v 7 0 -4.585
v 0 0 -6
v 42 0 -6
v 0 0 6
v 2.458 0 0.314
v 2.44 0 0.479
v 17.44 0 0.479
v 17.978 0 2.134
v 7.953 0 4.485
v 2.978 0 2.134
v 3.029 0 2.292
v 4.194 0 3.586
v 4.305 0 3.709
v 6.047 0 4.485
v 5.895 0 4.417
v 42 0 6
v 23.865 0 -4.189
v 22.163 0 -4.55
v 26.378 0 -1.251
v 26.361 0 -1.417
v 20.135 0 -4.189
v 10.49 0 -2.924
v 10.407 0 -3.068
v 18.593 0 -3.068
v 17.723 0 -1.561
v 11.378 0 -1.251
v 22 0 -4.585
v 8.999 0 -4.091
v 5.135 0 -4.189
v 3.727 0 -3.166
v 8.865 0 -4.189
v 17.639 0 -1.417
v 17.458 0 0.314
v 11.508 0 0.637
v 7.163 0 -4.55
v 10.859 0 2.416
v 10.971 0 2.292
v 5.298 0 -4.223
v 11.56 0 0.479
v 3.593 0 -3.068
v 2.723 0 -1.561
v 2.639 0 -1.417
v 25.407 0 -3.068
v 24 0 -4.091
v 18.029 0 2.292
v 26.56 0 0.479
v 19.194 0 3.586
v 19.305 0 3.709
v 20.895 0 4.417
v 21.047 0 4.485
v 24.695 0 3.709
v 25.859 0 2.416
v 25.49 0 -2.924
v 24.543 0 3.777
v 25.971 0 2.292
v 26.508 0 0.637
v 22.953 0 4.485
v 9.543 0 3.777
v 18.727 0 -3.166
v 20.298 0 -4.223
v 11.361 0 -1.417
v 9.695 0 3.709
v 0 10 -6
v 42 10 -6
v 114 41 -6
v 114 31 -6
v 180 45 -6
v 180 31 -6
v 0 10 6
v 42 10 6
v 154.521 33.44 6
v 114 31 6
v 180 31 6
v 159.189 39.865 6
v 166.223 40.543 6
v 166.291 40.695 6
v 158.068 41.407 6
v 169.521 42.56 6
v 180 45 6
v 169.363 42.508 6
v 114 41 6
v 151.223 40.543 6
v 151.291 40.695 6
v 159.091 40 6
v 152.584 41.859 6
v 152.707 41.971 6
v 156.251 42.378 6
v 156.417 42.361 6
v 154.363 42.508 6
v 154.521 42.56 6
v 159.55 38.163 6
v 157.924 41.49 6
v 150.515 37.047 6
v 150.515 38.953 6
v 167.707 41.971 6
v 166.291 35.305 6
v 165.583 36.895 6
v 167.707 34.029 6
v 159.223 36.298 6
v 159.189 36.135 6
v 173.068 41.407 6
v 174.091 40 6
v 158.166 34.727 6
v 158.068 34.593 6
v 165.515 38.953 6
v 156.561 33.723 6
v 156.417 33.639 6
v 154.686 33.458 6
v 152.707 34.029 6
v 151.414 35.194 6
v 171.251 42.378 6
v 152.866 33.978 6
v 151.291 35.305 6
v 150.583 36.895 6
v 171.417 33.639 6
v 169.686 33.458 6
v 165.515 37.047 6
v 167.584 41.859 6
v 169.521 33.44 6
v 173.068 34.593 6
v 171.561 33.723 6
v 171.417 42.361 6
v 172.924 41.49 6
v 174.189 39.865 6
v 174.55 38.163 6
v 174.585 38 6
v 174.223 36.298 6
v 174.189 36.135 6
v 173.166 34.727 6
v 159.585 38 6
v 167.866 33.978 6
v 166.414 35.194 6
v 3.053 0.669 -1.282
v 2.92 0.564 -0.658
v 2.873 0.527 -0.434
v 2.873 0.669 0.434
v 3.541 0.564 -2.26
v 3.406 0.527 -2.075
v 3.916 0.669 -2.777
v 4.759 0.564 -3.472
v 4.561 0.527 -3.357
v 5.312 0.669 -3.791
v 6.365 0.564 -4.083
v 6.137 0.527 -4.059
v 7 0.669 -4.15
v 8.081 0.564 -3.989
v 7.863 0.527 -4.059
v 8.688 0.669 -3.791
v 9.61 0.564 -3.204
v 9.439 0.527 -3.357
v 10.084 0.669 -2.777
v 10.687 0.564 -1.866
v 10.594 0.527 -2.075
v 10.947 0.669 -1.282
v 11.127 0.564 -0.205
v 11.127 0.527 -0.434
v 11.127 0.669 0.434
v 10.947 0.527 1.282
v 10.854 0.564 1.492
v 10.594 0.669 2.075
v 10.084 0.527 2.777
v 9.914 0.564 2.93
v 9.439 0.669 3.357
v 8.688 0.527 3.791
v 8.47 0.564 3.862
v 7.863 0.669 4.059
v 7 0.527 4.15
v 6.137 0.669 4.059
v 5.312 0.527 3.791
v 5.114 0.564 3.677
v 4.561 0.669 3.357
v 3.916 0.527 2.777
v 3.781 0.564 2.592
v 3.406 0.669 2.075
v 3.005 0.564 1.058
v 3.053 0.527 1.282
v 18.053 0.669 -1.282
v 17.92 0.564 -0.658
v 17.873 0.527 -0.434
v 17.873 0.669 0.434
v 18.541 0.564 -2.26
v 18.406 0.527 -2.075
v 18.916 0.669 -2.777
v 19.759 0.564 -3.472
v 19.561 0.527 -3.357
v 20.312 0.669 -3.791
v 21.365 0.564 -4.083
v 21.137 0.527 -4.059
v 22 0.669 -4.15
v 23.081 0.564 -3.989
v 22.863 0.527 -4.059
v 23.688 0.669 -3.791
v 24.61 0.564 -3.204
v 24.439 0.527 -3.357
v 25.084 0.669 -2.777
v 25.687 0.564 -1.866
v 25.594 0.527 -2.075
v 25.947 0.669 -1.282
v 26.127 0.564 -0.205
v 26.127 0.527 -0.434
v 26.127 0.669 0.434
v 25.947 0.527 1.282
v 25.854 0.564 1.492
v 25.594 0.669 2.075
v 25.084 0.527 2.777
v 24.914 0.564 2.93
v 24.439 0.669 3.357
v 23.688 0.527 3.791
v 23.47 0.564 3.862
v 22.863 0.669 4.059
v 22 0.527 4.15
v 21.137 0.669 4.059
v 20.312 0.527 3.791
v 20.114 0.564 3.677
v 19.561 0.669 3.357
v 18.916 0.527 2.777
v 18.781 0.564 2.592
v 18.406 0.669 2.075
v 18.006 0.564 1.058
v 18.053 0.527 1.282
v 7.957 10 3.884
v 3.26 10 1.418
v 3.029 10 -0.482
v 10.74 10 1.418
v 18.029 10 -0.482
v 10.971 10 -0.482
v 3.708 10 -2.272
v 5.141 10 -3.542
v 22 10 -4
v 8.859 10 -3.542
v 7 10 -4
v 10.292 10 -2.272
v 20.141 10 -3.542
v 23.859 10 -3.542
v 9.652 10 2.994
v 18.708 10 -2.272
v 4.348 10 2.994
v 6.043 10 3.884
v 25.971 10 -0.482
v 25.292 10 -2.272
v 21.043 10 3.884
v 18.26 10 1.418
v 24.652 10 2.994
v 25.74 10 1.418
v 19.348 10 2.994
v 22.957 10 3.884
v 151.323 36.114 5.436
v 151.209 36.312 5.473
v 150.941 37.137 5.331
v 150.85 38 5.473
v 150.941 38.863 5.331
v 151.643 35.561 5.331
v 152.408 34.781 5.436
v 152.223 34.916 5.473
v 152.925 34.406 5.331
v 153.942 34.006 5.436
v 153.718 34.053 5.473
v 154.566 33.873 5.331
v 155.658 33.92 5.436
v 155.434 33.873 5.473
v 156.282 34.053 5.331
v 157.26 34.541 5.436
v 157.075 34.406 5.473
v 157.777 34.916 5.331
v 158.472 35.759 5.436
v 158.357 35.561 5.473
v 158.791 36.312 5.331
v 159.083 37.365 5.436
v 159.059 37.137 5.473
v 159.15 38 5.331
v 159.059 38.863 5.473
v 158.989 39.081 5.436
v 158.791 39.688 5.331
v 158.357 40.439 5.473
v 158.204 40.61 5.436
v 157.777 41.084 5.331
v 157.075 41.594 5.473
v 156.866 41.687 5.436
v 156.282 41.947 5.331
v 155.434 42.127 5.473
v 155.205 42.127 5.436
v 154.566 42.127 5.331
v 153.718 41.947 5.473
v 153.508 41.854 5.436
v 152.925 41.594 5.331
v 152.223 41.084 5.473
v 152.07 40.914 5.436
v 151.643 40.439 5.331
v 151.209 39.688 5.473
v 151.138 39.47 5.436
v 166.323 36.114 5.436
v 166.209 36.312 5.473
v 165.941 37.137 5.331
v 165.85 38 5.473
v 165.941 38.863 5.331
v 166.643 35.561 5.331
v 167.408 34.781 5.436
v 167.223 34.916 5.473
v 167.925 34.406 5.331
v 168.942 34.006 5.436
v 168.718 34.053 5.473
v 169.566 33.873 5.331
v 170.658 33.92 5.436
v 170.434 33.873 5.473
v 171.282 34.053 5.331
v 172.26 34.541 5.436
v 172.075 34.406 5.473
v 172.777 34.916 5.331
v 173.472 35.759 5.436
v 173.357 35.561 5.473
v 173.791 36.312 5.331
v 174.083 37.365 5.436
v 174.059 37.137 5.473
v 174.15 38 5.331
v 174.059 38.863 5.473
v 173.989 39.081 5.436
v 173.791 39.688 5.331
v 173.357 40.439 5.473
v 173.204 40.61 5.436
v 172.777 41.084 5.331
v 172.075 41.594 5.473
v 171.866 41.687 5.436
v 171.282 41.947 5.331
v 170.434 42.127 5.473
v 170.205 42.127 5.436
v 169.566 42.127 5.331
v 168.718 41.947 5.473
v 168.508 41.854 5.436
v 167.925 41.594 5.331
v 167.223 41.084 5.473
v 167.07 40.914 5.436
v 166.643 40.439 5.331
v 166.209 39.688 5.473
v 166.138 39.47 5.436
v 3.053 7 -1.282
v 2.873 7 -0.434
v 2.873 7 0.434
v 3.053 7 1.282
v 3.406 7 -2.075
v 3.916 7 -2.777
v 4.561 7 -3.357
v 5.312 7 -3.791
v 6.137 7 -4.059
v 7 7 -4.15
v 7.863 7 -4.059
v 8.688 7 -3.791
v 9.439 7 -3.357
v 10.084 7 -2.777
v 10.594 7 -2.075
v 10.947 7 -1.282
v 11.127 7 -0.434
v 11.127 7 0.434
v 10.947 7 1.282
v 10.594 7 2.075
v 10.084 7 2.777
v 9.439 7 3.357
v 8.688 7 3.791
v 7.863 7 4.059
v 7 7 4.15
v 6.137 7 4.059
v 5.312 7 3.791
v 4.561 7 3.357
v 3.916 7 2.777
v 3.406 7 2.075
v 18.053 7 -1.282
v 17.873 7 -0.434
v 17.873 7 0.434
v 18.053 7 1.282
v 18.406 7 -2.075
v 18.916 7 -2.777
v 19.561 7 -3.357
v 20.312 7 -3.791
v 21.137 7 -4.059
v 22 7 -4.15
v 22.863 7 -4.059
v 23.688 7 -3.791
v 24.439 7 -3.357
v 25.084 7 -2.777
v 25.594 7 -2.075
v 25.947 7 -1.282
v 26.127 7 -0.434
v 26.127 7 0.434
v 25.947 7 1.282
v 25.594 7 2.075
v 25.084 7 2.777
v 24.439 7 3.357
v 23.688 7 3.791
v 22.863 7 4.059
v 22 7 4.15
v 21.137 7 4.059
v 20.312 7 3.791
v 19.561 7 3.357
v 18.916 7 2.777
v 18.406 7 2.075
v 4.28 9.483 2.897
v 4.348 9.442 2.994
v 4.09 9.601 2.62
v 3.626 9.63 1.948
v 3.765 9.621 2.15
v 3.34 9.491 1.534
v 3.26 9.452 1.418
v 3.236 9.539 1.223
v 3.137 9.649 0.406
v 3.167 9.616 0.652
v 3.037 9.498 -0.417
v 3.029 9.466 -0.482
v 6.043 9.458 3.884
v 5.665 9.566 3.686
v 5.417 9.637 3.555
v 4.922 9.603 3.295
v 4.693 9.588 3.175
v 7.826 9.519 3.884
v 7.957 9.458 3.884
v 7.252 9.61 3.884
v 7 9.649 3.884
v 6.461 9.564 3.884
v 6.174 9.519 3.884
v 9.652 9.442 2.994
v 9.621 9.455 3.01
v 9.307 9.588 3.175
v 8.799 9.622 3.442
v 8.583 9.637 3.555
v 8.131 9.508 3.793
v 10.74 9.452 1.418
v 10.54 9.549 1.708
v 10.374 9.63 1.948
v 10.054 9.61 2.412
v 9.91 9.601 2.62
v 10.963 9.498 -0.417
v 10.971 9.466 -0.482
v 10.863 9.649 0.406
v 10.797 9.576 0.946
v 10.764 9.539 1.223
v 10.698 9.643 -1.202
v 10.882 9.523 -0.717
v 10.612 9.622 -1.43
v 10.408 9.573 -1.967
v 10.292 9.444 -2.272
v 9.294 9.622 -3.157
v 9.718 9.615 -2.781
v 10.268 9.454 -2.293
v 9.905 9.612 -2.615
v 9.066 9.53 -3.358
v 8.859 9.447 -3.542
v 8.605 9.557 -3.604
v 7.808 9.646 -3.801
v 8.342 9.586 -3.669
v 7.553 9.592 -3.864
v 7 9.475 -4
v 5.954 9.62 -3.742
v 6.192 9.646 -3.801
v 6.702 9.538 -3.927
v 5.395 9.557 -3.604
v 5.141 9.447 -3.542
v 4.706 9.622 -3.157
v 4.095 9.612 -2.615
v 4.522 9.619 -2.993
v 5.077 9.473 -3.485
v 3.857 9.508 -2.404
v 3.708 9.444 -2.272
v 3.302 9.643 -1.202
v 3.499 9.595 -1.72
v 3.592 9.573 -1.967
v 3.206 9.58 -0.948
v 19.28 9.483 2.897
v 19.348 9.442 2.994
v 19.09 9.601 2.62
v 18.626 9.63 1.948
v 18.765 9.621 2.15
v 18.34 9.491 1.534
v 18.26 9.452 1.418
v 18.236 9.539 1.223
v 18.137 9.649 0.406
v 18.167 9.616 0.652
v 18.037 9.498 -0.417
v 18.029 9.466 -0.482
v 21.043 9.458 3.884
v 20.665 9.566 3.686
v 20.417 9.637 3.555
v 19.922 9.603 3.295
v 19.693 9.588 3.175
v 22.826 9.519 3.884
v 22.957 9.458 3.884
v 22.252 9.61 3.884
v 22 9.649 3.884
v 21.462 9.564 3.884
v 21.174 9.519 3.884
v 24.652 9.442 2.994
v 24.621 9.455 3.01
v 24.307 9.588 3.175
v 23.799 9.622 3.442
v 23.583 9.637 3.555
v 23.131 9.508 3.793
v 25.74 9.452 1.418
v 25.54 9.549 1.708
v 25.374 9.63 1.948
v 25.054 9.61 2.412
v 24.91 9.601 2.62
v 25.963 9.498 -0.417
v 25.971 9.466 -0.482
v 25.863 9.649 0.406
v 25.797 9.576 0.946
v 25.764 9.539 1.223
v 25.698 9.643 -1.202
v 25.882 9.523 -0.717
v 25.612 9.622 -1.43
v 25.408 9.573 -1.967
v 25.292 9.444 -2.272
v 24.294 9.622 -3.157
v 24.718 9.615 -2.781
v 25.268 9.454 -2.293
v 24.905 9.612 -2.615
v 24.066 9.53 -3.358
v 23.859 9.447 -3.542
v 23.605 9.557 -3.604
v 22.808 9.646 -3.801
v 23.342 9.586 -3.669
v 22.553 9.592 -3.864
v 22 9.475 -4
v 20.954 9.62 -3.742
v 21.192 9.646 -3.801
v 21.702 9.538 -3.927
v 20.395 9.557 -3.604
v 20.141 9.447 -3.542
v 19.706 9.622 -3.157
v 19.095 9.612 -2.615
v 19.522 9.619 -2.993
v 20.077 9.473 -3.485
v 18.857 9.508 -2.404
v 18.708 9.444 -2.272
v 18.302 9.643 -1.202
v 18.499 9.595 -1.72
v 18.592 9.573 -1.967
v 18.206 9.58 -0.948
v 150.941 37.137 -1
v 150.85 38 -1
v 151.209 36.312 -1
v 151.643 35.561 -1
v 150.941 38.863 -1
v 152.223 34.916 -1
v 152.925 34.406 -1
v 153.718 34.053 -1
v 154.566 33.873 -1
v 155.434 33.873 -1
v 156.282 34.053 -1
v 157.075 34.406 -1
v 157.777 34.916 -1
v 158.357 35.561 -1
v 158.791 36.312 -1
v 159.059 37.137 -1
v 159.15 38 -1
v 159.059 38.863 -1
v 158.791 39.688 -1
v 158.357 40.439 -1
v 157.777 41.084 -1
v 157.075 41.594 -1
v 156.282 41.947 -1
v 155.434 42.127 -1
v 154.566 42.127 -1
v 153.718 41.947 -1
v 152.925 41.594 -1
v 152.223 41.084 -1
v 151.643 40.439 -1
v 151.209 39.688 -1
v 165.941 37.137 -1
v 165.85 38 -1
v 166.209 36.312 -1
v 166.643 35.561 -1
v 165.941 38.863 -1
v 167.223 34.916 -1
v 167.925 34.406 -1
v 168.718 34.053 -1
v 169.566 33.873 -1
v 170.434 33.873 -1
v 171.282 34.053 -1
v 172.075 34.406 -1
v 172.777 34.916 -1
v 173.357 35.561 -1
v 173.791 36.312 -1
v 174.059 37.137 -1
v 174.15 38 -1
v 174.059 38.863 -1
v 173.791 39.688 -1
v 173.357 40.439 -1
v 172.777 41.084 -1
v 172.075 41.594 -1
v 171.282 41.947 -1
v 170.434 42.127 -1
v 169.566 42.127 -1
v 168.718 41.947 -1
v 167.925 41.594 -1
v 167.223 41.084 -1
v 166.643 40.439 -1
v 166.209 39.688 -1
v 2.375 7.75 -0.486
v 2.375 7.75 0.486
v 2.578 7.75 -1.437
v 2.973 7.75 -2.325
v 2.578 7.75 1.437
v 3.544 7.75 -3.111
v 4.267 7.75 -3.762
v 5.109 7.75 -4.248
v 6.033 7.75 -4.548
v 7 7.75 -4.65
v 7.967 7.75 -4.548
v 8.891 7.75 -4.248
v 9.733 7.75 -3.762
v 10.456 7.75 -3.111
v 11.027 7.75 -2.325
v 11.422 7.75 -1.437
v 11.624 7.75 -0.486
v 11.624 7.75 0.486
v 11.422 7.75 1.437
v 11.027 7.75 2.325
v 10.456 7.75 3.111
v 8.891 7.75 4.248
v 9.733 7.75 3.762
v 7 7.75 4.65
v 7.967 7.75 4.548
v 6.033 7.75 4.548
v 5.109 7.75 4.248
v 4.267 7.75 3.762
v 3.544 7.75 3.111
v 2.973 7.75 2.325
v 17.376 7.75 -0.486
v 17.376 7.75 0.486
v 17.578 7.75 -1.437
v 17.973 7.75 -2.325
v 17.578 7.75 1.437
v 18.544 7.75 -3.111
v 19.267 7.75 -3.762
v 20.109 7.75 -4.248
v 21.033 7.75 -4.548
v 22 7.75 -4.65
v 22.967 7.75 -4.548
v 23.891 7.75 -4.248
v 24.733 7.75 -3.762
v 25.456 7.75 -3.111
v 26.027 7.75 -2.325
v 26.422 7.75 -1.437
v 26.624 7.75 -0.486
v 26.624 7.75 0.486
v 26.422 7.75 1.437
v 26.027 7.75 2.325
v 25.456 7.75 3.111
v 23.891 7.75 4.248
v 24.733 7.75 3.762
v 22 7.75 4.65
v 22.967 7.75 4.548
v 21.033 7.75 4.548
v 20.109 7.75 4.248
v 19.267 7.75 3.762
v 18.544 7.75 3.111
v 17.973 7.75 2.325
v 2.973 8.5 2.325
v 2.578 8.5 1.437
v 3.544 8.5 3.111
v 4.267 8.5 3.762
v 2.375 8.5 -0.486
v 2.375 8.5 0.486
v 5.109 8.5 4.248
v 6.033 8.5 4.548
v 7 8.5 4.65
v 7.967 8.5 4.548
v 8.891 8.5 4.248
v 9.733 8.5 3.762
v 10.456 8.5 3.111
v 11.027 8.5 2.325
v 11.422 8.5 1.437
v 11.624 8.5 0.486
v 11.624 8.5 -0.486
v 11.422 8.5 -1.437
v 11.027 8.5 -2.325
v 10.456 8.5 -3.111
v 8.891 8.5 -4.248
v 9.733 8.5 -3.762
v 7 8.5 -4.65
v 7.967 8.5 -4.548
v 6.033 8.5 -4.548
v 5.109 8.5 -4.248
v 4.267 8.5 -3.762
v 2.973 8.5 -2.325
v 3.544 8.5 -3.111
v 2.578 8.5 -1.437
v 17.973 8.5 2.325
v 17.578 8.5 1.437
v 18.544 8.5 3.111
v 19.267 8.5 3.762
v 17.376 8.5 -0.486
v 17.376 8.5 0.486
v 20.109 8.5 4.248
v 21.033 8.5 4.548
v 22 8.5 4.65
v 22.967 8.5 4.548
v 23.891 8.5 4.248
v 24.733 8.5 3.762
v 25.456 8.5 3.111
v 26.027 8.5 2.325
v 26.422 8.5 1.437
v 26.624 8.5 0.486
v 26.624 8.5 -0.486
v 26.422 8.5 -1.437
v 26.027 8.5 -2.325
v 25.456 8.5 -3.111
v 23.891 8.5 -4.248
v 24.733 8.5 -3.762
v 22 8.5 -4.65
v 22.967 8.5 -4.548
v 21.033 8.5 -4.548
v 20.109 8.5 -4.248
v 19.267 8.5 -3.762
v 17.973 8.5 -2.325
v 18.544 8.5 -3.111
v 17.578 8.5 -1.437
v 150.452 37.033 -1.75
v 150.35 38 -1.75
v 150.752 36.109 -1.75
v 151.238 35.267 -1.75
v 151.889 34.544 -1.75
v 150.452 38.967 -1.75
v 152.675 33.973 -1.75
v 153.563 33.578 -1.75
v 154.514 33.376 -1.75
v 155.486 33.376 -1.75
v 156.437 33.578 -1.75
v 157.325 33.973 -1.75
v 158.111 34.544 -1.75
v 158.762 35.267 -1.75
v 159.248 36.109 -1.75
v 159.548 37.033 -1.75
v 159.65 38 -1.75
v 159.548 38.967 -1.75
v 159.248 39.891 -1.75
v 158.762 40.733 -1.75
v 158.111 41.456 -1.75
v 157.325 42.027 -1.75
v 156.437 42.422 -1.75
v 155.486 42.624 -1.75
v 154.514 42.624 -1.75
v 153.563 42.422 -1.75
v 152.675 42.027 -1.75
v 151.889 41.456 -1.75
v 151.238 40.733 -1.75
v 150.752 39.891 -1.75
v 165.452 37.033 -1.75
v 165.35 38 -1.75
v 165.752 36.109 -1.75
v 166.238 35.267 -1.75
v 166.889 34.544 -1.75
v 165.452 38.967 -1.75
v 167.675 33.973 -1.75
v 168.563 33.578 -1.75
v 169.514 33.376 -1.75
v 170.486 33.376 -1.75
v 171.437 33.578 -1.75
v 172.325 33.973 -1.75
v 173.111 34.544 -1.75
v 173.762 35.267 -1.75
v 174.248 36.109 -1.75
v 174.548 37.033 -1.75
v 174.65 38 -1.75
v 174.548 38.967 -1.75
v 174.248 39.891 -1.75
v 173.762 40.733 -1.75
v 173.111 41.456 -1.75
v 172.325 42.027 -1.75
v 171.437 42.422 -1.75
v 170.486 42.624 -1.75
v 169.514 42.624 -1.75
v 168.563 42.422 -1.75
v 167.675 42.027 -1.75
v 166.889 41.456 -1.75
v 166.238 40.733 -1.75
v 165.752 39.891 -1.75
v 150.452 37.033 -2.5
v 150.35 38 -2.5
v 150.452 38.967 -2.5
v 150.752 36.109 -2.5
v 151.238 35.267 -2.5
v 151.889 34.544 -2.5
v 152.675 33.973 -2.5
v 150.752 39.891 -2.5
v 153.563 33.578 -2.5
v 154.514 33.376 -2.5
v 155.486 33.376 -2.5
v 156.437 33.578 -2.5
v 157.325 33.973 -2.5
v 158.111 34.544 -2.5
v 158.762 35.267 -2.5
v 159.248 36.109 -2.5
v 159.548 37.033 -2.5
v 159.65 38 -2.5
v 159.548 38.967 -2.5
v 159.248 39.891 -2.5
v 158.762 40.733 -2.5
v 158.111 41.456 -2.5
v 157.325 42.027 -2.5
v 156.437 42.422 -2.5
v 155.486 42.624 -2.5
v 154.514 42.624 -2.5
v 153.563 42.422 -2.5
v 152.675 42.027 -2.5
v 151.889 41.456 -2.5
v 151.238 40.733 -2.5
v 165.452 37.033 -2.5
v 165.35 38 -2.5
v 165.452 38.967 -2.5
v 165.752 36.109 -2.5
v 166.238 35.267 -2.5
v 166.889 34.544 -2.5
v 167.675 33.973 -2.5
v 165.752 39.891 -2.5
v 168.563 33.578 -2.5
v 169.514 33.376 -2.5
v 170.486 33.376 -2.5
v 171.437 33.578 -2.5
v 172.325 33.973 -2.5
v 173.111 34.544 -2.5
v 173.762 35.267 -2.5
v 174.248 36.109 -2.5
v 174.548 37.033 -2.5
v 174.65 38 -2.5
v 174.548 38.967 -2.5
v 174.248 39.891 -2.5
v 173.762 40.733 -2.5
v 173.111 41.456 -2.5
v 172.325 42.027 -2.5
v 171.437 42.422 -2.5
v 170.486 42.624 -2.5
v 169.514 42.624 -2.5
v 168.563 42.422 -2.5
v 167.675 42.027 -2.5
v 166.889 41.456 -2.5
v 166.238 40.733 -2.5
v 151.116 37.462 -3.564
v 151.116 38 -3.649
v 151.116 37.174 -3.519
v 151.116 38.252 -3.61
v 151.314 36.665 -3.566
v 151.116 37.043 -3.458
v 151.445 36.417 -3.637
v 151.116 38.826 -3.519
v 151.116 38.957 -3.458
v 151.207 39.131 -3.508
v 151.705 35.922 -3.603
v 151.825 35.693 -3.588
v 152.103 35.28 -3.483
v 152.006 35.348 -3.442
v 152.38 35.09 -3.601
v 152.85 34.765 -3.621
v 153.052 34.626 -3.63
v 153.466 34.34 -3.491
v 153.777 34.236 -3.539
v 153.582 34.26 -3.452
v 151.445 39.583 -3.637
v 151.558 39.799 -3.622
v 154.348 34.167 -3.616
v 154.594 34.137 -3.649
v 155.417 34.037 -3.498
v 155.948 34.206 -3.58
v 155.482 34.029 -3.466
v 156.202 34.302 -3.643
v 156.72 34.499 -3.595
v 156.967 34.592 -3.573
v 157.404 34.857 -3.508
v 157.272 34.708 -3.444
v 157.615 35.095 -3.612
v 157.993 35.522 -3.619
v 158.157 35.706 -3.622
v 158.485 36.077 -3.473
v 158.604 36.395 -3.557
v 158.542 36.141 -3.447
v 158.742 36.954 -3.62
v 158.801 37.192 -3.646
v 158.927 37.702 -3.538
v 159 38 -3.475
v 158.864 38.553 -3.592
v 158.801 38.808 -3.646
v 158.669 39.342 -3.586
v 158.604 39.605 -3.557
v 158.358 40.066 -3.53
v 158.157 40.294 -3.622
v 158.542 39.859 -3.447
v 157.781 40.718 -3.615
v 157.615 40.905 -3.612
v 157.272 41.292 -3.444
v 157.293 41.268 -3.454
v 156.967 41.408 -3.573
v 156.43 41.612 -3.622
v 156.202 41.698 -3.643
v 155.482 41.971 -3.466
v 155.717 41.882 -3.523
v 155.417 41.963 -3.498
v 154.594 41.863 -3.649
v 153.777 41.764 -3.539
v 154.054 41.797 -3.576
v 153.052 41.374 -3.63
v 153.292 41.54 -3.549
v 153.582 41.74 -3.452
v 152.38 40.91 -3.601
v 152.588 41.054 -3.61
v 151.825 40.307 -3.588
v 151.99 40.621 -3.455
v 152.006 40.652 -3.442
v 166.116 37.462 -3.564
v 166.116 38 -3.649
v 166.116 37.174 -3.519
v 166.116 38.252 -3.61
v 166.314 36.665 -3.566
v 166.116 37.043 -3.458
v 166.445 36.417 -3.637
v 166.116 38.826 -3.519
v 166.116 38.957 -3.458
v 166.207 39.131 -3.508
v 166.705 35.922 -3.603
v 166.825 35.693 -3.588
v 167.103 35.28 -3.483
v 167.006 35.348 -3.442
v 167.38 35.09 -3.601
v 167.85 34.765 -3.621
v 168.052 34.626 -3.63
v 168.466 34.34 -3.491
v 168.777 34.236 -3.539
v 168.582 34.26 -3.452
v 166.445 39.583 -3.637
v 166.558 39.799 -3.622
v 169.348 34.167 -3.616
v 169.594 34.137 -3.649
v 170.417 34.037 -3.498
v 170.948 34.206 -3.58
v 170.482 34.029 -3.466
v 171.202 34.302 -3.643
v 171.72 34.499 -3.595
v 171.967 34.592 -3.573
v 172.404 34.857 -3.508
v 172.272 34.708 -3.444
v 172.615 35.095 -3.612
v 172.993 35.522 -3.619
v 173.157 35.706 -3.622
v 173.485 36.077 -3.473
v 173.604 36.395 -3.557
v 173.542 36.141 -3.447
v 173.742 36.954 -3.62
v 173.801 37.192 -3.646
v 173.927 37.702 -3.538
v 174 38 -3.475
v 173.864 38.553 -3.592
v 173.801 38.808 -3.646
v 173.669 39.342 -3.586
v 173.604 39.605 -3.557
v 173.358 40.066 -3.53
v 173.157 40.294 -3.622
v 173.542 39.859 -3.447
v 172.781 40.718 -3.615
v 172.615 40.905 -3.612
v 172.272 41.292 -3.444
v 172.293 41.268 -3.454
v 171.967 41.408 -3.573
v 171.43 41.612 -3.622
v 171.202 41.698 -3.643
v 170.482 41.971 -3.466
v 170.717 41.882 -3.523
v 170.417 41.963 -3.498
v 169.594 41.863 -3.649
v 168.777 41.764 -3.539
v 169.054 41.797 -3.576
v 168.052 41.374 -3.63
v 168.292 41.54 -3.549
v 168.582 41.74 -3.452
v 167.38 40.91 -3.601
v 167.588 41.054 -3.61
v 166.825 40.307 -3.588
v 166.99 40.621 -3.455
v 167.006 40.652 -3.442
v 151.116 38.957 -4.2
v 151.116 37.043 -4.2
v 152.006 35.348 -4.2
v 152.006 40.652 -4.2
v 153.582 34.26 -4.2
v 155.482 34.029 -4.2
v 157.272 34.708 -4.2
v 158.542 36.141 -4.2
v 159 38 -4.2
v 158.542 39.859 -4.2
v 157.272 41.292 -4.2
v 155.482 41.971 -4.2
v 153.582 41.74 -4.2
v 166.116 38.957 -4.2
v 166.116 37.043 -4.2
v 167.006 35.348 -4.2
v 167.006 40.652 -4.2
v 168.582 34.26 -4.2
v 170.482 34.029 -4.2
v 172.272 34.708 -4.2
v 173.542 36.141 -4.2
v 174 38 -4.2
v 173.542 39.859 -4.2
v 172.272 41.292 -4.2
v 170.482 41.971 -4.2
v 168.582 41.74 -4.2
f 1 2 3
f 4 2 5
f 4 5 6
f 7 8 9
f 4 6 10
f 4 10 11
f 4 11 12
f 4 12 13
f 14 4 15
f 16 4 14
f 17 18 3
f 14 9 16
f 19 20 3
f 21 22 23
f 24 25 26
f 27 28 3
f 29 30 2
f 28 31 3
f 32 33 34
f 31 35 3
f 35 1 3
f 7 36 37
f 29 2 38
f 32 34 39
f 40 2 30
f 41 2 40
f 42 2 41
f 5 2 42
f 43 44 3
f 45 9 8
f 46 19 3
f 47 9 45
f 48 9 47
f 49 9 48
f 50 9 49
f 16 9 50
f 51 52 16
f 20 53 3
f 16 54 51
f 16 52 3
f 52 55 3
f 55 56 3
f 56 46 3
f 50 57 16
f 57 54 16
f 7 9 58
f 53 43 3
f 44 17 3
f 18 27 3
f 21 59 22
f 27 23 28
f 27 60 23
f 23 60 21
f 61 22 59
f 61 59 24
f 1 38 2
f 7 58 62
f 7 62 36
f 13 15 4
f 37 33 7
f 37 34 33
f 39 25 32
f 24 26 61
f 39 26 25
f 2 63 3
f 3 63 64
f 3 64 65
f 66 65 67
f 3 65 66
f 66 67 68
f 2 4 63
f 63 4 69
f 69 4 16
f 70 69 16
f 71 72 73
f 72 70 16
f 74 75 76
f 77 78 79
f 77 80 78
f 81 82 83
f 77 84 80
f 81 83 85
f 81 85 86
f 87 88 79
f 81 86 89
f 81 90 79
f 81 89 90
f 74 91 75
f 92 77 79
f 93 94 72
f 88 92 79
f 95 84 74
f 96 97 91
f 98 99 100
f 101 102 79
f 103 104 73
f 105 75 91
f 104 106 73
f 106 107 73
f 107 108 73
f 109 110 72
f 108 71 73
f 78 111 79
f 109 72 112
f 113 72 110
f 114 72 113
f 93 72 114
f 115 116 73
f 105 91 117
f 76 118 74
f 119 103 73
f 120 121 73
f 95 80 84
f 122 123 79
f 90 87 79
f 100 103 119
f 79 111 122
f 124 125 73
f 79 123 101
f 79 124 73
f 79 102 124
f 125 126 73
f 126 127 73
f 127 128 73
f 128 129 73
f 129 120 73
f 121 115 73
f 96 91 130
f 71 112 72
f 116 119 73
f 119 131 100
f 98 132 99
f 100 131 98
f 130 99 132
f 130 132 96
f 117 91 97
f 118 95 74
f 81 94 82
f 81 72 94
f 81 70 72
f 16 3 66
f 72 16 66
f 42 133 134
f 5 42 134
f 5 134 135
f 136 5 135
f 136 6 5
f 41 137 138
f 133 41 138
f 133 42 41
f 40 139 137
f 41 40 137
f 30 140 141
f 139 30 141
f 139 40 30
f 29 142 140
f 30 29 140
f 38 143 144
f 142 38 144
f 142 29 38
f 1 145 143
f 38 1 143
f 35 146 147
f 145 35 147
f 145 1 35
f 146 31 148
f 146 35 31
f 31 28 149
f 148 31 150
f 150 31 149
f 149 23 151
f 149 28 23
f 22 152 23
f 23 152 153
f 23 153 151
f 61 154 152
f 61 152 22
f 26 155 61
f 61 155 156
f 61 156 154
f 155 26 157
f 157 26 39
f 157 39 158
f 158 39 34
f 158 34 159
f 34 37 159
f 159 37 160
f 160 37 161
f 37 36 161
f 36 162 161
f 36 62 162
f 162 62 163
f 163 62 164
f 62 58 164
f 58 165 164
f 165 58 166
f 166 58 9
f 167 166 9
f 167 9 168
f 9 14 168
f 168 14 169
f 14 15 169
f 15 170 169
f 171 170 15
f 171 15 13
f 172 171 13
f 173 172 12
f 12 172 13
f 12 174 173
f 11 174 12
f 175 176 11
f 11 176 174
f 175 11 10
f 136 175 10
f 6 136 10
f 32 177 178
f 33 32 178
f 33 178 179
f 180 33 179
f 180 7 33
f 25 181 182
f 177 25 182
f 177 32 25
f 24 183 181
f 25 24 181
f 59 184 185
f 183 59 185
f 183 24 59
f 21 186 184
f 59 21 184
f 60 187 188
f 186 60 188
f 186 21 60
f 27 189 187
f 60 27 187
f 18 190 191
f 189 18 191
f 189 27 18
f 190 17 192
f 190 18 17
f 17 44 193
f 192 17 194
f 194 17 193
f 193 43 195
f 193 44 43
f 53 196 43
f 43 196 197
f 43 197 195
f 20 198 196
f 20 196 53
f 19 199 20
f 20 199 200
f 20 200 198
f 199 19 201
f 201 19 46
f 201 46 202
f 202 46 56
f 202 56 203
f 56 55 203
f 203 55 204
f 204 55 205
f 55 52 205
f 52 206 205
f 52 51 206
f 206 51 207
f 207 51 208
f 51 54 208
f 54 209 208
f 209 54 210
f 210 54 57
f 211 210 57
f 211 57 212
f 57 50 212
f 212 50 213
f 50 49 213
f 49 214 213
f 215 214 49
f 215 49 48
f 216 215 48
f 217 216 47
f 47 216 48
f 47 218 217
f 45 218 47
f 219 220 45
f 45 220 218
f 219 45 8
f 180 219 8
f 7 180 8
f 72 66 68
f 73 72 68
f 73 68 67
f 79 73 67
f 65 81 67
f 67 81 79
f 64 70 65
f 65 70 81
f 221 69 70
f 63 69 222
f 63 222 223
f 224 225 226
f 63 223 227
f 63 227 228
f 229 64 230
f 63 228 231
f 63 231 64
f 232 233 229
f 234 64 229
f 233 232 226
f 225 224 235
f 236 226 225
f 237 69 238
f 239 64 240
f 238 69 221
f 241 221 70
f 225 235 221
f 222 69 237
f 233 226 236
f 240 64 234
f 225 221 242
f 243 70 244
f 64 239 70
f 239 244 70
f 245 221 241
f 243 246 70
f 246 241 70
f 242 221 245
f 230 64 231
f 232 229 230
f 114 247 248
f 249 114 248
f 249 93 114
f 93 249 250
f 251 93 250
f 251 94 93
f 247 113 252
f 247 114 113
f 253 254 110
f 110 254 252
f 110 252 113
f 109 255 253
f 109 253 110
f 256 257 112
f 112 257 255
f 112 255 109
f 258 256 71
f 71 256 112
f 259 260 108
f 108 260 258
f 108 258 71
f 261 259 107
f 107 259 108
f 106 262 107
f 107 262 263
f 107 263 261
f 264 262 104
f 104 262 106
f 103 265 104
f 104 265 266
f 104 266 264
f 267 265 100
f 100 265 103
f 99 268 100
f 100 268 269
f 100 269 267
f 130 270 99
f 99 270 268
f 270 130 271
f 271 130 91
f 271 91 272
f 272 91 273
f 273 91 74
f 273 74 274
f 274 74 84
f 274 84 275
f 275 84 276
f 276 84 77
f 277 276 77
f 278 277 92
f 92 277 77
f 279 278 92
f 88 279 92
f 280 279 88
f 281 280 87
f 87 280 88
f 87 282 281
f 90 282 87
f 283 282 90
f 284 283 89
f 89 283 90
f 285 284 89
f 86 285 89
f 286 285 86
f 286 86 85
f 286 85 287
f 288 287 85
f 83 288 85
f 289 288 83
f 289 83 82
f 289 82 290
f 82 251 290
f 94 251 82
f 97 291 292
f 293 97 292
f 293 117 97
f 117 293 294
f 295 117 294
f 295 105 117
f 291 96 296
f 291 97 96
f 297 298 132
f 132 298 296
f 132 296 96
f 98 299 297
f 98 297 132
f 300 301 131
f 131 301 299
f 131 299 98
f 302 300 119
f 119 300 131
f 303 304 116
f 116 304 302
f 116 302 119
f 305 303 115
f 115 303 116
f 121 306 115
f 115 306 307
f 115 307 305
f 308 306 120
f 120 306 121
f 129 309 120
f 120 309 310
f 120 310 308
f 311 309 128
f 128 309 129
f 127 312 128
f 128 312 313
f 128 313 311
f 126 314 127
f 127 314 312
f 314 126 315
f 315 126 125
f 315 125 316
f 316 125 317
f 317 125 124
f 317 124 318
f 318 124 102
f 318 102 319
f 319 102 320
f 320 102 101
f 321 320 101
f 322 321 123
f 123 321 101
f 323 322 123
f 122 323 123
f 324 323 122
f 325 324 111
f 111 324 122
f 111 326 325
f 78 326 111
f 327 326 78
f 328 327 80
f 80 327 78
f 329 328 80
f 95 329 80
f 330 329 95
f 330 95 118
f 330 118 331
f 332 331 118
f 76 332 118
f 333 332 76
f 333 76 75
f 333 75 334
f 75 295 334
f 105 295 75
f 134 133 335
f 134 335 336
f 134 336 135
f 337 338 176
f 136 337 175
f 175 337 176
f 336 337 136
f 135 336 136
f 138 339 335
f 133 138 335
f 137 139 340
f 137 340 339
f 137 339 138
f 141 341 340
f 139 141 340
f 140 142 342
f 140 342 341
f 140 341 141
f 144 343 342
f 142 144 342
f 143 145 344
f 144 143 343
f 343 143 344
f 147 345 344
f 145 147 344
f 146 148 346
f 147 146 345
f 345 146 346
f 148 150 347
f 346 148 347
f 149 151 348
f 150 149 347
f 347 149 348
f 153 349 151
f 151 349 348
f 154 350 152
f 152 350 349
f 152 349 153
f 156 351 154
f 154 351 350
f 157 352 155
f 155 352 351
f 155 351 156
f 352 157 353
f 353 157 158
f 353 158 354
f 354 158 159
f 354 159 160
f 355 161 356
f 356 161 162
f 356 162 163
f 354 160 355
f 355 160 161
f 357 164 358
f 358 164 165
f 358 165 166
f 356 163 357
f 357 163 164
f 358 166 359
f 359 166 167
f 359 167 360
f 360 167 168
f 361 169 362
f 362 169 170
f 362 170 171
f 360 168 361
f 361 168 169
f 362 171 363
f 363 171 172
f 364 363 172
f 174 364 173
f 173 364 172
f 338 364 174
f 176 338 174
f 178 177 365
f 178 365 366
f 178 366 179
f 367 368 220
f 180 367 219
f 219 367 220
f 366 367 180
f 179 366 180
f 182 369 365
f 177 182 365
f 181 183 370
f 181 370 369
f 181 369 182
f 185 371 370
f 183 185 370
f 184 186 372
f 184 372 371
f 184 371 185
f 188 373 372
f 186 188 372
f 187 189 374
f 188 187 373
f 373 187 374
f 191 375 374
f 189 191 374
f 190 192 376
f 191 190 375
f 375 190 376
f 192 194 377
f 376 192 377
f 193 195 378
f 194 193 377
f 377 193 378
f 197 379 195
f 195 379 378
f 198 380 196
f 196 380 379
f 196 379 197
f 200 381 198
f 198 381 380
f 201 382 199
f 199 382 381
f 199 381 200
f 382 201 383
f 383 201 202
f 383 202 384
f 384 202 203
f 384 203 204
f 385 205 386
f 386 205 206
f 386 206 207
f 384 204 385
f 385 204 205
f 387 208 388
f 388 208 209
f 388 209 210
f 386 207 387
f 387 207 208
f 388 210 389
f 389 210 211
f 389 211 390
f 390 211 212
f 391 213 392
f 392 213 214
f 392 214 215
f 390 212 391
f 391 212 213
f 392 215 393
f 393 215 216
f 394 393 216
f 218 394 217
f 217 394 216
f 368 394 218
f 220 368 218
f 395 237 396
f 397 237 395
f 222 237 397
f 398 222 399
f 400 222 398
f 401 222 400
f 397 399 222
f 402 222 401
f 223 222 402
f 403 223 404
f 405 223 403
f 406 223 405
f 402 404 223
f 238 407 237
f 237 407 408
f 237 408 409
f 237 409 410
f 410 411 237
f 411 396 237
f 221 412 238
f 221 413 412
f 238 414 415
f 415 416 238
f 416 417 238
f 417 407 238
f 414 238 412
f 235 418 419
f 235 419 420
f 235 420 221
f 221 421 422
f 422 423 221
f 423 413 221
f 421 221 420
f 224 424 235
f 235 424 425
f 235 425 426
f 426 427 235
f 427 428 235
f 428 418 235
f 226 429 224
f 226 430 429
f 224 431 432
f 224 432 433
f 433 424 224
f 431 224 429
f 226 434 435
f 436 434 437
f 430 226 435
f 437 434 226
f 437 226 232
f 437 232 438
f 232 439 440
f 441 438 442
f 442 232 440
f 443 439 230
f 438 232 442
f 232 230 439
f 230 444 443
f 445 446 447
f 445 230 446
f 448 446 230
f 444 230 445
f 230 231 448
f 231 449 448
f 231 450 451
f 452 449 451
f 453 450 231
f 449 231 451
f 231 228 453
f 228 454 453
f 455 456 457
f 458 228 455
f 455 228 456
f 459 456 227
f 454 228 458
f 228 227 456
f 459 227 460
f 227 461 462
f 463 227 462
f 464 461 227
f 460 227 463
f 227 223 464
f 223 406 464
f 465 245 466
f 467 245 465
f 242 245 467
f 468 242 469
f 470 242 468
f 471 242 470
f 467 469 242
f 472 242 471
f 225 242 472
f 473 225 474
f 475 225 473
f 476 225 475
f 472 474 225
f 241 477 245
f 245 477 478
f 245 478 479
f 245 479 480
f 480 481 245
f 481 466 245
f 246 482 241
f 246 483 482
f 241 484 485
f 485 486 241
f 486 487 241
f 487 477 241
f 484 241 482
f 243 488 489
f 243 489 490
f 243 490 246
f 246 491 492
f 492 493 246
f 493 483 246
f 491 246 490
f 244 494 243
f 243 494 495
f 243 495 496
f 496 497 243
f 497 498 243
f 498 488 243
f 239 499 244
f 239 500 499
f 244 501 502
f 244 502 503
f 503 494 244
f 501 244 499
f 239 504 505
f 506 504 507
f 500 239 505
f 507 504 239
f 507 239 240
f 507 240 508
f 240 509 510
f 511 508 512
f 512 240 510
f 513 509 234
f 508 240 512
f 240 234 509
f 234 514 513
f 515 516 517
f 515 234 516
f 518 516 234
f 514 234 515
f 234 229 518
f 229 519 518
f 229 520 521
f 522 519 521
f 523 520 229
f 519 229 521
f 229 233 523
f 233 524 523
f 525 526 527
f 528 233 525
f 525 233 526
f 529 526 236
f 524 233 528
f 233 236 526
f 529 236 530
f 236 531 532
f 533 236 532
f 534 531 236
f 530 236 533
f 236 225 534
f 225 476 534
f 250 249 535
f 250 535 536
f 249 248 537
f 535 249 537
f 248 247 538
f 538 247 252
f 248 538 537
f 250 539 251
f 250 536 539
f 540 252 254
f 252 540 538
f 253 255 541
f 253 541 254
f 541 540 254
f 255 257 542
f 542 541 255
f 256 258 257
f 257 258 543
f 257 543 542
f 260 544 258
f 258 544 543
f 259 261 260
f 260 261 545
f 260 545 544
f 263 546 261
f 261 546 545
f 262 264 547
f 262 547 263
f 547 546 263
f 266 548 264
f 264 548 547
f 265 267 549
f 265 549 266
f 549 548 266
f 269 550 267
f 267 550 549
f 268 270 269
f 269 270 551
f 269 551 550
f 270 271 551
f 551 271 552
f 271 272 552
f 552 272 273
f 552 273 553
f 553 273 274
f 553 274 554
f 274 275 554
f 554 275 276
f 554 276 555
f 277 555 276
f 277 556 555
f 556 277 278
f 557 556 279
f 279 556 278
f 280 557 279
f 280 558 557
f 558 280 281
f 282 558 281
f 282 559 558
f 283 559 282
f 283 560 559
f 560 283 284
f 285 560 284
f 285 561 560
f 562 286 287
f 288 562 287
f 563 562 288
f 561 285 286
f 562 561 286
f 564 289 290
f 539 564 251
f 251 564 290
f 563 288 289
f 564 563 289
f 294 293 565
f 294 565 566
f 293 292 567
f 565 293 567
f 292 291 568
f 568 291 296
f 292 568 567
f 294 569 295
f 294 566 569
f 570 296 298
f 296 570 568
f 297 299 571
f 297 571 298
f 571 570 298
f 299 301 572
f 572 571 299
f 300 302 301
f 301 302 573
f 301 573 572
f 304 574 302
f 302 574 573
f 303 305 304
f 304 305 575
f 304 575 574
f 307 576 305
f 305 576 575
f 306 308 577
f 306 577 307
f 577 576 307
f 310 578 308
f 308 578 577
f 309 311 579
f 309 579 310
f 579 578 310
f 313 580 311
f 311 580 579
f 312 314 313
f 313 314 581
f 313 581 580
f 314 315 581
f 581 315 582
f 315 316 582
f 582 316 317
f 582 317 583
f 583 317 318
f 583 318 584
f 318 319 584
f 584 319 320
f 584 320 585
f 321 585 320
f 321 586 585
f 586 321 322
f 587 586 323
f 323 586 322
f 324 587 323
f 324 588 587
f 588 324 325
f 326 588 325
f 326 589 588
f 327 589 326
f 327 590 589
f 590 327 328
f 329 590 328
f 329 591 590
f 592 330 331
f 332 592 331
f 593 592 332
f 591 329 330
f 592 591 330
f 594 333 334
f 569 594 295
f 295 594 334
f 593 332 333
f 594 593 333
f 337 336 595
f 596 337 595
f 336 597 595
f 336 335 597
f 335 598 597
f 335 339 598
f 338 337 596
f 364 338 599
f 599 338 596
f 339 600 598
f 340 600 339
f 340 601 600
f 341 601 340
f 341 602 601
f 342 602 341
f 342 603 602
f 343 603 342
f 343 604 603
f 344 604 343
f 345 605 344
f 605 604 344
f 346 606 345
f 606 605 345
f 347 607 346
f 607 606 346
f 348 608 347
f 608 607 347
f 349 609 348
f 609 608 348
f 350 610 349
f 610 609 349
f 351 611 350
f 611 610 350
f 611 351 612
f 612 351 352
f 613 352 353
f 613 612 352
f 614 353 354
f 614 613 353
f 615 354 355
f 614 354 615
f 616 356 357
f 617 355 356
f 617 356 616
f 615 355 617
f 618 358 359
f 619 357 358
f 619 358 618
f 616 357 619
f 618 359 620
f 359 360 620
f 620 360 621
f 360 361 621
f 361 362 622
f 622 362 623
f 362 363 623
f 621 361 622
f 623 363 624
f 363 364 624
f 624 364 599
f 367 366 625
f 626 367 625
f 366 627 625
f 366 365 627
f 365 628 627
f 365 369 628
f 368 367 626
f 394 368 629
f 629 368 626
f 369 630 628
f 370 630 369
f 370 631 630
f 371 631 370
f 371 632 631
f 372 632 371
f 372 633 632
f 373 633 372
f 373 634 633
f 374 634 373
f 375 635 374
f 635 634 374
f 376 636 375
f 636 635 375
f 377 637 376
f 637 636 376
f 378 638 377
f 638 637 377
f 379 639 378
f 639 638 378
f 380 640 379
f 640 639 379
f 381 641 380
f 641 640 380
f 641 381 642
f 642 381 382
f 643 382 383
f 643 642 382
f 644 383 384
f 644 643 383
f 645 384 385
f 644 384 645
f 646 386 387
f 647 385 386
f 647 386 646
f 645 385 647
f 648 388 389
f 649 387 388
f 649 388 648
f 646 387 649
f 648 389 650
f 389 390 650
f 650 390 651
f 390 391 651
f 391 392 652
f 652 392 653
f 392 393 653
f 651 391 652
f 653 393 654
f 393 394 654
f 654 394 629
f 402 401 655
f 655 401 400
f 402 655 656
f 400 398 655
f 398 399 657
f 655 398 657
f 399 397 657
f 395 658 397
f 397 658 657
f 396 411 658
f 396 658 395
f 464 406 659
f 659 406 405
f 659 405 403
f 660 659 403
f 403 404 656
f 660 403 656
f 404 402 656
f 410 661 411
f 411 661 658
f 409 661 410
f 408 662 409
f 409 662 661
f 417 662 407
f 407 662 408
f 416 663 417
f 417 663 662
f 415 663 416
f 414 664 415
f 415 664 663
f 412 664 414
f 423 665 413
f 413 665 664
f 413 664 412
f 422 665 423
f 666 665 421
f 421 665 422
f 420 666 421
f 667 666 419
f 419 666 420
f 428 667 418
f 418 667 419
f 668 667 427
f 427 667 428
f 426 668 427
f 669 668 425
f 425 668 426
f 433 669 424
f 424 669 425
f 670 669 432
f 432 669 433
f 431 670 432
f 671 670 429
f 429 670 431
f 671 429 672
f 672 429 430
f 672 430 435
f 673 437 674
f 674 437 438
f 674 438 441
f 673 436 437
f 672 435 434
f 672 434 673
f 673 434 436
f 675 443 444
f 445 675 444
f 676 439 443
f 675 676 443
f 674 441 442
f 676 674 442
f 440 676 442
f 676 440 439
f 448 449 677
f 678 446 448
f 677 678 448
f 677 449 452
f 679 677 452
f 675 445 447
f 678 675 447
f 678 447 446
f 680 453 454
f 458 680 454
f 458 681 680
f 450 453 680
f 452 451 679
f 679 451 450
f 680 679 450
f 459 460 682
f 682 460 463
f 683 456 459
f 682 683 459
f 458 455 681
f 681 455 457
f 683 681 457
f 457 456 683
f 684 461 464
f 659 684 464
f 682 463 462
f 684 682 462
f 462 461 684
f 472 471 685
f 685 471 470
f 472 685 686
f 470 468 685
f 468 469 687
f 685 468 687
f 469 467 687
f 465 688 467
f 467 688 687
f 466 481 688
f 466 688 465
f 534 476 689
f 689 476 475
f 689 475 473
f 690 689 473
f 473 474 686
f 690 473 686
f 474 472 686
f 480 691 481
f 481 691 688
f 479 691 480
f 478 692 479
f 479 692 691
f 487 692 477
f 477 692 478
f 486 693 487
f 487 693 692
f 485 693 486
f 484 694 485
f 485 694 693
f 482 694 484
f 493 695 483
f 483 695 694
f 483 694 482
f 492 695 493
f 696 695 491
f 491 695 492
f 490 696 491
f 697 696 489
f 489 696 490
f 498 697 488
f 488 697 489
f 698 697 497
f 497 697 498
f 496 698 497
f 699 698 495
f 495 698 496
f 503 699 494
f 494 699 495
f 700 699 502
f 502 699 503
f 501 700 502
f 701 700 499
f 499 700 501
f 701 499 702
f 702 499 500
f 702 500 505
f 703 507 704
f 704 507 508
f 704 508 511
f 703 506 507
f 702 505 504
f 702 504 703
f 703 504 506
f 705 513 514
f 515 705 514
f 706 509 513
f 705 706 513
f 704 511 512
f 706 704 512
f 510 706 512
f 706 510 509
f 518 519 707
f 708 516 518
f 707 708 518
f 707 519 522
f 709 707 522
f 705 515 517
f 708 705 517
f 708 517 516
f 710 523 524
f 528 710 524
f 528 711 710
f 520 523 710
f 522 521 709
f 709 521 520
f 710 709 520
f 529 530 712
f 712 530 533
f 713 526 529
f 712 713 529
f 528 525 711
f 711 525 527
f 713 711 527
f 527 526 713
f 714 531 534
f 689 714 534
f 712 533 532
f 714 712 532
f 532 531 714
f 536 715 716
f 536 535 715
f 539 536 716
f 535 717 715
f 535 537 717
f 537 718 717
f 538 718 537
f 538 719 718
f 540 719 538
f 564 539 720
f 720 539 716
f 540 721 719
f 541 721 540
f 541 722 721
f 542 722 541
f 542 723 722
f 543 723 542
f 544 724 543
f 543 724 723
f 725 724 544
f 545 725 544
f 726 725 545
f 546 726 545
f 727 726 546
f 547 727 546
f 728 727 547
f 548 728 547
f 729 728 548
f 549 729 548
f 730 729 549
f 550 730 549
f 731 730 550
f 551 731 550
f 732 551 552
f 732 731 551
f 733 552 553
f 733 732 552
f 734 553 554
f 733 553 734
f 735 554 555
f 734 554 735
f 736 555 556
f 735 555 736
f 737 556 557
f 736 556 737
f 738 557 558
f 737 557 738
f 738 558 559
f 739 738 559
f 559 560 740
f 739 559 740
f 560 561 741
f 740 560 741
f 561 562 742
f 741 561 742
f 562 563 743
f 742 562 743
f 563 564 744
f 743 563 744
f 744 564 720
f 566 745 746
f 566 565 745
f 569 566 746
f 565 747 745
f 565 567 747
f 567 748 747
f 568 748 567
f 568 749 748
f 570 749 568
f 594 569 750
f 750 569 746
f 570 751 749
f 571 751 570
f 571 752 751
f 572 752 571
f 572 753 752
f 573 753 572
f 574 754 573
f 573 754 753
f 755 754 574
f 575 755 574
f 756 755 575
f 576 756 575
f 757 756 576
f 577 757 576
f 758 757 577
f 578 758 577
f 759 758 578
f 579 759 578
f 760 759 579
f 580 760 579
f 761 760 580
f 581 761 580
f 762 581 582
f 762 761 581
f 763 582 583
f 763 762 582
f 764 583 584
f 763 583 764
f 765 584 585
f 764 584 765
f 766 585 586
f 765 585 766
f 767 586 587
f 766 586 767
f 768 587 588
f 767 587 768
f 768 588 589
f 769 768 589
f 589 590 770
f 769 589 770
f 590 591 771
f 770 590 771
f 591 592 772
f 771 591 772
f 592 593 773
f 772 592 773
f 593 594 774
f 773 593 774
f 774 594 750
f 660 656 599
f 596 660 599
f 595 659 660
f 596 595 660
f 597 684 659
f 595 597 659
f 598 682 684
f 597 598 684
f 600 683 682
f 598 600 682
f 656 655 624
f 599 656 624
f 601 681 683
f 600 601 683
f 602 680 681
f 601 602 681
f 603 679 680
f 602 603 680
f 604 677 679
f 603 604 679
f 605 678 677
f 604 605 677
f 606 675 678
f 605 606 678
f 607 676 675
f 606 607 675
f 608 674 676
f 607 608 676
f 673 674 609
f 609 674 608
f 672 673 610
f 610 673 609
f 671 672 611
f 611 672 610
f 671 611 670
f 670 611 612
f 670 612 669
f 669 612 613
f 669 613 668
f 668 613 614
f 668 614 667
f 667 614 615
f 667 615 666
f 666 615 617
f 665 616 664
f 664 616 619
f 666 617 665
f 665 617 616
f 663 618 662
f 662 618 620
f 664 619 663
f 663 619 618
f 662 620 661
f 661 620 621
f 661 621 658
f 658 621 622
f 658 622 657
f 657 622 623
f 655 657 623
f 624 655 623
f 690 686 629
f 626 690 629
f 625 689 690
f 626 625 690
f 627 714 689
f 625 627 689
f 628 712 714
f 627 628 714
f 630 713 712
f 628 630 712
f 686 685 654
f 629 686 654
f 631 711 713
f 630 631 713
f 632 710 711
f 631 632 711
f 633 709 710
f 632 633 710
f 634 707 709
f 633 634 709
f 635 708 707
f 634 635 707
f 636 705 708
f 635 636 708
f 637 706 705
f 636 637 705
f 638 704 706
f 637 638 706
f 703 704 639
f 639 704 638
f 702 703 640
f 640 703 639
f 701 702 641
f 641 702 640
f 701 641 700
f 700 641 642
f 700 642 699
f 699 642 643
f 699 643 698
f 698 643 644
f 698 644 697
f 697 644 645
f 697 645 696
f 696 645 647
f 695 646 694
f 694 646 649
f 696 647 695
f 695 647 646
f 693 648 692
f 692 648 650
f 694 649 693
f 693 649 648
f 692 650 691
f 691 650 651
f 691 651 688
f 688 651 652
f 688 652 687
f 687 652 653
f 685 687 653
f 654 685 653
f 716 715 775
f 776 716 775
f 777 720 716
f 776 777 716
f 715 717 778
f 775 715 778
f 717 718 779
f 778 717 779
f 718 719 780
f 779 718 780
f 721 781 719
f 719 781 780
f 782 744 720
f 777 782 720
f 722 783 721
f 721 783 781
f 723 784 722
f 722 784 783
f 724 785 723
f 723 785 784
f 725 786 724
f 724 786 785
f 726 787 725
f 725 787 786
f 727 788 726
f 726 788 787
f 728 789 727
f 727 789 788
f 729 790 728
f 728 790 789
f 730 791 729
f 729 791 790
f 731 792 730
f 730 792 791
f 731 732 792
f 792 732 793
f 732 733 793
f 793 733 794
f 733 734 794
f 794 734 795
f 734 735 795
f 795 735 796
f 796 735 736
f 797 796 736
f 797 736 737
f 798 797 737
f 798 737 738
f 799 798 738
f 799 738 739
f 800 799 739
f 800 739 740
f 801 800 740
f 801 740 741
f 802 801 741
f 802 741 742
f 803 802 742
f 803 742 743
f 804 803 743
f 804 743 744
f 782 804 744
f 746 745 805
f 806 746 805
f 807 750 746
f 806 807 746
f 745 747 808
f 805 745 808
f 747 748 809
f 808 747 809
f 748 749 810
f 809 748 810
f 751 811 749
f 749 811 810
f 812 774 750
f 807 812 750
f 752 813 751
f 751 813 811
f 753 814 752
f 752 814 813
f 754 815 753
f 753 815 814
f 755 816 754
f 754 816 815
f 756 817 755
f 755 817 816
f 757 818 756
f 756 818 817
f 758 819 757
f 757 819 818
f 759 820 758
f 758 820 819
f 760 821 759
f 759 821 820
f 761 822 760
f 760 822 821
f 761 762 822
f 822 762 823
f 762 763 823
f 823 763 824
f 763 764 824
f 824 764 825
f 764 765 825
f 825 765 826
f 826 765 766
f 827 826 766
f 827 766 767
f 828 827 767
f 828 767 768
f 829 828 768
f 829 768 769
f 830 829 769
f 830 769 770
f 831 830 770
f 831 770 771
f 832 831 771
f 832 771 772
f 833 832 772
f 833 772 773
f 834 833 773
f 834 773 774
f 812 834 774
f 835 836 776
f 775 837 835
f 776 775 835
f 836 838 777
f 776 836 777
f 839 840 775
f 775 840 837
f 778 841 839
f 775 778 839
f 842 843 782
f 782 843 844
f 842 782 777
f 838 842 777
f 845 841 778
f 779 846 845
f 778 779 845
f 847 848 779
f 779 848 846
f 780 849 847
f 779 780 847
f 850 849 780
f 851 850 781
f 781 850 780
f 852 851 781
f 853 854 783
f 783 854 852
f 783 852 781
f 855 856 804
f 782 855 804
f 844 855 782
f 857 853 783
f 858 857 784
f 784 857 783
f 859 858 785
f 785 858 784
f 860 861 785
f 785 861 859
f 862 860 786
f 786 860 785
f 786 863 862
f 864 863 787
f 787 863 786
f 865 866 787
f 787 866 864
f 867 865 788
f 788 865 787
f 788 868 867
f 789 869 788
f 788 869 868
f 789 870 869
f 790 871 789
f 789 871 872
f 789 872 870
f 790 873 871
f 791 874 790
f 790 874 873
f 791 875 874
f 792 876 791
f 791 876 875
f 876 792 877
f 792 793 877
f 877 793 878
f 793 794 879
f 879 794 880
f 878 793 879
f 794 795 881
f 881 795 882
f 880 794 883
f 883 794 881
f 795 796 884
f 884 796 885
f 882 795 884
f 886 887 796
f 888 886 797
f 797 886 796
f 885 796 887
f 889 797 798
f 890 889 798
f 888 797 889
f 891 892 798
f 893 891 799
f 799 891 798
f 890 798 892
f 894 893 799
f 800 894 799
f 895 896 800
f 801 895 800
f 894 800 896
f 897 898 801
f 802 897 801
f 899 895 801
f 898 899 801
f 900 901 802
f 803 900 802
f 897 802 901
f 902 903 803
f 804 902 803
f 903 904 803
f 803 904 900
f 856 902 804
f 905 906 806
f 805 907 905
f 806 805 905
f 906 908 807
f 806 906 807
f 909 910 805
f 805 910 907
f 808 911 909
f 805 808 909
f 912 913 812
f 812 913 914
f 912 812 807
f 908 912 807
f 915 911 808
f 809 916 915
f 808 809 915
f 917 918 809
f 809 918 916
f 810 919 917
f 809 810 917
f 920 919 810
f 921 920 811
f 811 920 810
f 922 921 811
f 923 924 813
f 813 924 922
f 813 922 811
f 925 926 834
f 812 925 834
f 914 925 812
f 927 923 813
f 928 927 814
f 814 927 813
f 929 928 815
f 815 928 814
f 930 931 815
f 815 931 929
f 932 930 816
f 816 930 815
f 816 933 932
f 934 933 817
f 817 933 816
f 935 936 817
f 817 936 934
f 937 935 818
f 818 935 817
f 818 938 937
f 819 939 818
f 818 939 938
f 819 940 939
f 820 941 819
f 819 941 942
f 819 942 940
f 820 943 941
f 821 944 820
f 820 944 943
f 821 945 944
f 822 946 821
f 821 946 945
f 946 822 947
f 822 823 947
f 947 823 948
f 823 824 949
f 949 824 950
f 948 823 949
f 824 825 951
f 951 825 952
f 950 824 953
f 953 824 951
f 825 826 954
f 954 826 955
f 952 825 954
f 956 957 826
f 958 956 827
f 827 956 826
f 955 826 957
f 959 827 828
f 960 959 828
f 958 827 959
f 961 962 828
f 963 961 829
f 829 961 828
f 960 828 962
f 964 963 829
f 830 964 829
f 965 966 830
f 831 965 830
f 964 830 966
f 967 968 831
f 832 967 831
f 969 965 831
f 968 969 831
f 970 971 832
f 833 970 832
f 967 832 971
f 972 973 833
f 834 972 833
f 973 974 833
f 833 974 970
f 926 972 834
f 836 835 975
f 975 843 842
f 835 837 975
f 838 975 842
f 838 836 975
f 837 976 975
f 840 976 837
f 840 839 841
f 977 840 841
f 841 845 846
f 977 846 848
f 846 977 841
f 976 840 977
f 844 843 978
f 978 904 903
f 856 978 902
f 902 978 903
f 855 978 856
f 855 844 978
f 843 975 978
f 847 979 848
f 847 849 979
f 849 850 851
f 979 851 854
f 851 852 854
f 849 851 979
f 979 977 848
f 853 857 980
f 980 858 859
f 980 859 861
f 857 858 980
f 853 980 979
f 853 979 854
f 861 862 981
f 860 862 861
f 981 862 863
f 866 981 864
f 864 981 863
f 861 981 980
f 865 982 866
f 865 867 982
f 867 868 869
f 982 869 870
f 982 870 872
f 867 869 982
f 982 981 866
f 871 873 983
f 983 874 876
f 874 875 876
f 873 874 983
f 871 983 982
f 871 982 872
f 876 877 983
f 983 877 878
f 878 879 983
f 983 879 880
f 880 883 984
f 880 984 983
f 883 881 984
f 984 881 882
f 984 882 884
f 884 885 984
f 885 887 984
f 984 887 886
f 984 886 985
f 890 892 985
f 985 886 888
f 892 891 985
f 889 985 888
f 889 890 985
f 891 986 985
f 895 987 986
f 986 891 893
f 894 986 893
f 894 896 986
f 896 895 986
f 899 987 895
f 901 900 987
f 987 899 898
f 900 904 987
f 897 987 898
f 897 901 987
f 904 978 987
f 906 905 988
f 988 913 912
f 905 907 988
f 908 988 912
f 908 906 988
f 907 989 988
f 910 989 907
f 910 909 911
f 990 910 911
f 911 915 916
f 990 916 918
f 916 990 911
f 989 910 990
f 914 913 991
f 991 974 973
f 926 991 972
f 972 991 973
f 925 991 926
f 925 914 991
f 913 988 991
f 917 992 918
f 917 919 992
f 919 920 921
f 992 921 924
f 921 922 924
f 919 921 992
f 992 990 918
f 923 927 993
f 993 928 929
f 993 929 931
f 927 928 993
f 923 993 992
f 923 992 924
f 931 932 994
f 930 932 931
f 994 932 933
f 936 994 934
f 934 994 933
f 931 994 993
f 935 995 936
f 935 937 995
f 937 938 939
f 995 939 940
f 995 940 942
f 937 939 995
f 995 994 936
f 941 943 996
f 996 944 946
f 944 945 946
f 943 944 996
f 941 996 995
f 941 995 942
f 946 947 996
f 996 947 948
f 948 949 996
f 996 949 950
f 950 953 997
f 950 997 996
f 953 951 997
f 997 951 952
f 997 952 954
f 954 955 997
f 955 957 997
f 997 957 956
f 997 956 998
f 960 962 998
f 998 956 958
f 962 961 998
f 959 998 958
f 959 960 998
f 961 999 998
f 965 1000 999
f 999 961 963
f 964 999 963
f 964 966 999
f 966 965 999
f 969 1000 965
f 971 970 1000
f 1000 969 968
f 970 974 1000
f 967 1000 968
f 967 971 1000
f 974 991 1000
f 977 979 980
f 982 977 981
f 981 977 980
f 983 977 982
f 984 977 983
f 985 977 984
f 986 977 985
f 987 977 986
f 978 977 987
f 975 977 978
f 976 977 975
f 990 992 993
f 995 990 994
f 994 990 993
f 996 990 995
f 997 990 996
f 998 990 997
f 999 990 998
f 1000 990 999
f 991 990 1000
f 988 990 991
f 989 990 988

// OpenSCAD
// file: pins.scad
// Pin Connectors V2
// Tony Buser <tbuser@gmail.com>

// pinhole(h=5);

// test();
// pintack(h=10);
// pinpeg(h=20);

module test() {
  tolerance = 0.3;
  
  translate([-12, 12, 0]) pinpeg(h=20);
  translate([12, 12, 0]) pintack(h=10);
  
  difference() {
    union() {
      translate([0, -12, 2.5]) cube(size = [59, 20, 5], center = true);
      translate([24, -12, 7.5]) cube(size = [12, 20, 15], center = true);
    }
    translate([-24, -12, 0]) pinhole(h=5, t=tolerance);
    translate([-12, -12, 0]) pinhole(h=5, t=tolerance, tight=false);
    translate([0, -12, 0]) pinhole(h=10, t=tolerance);
    translate([12, -12, 0]) pinhole(h=10, t=tolerance, tight=false);
    translate([24, -12, 15]) rotate([0, 180, 0]) pinhole(h=10, t=tolerance);
  }
}

module pinhole(h=10, r=4, lh=3, lt=1, t=0.3, tight=true) {
  union() {
    pin_solid(h, r+(t/2), lh, lt);
    cylinder(h=h+0.2, r=r);
    // widen the cylinder slightly
    // cylinder(h=h+0.2, r=r+(t-0.2/2));
    if (tight == false) {
      cylinder(h=h+0.2, r=r+(t/2)+0.25);
    }
    // widen the entrance hole to make insertion easier
    translate([0, 0, -0.1]) cylinder(h=lh/3, r2=r, r1=r+(t/2)+(lt/2));
  }
}

module pin(h=10, r=4, lh=3, lt=1, side=false) {
  if (side) {
    pin_horizontal(h, r, lh, lt);
  } else {
    pin_vertical(h, r, lh, lt);
  }
}

module pintack(h=10, r=4, lh=3, lt=1, bh=3, br=8.75) {
  union() {
    cylinder(h=bh, r=br);
    translate([0, 0, bh]) pin(h, r, lh, lt);
  }
}

module pinpeg(h=20, r=4, lh=3, lt=1) {
  union() {
    translate([0, -h/4+0.05, 0]) pin(h/2+0.1, r, lh, lt, side=true);
    translate([0, h/4-0.05, 0]) rotate([0, 0, 180]) pin(h/2+0.1, r, lh, lt, side=true);
  }
}

module pin_vertical(h=10, r=4, lh=3, lt=1) {
  difference() {
    pin_solid(h, r, lh, lt);
    
    // center cut
    translate([-r*0.5/2, -(r*2+lt*2)/2, h/4]) cube([r*0.5, r*2+lt*2, h]);
    translate([0, 0, h/4]) cylinder(h=h+lh, r=r/2.5, $fn=20);
    // center curve
    // translate([0, 0, h/4]) rotate([90, 0, 0]) cylinder(h=r*2, r=r*0.5/2, center=true, $fn=20);
  
    // side cuts
    translate([-r*2, -lt-r*1.125, -1]) cube([r*4, lt*2, h+2]);
    translate([-r*2, -lt+r*1.125, -1]) cube([r*4, lt*2, h+2]);
  }
}

// call pin with side=true instead of this
module pin_horizontal(h=10, r=4, lh=3, lt=1) {
  translate([0, h/2, r*1.125-lt]) rotate([90, 0, 0]) pin_vertical(h, r, lh, lt);
}

// this is mainly to make the pinhole module easier
module pin_solid(h=10, r=4, lh=3, lt=1) {
  union() {
    cylinder(h=h-lh, r=r, $fn=30);
    translate([0, 0, h-lh]) cylinder(h=lh*0.25, r1=r, r2=r+(lt/2), $fn=30);
    translate([0, 0, h-lh+lh*0.25]) cylinder(h=lh*0.25, r=r+(lt/2), $fn=30);    
    translate([0, 0, h-lh+lh*0.50]) cylinder(h=lh*0.50, r1=r+(lt/2), r2=r-(lt/2), $fn=30);    
  }
}

module two_pinholes() {
 pinhole();
 translate(v=[15,0,0]) pinhole();
}
// main file
include <pins.scad>

module left_rack() {

 difference() {
  linear_extrude(height = 12, center = true, convexity = 10)
  polygon([[0,0],[42,0],[114,31],[180,31],[180,45],[114,41],[42,10],[0,10]]);
 
  rotate(a=[0,90,90]) translate(v=[0,-7,0]) pinhole();
  rotate(a=[0,90,90]) translate(v=[0,-22,0]) pinhole();

  translate(v=[170,38,6]) rotate(a=[180,0,0]) pinhole();
  translate(v=[155,38,6]) rotate(a=[180,0,0]) pinhole();

 }
}

left_rack();
